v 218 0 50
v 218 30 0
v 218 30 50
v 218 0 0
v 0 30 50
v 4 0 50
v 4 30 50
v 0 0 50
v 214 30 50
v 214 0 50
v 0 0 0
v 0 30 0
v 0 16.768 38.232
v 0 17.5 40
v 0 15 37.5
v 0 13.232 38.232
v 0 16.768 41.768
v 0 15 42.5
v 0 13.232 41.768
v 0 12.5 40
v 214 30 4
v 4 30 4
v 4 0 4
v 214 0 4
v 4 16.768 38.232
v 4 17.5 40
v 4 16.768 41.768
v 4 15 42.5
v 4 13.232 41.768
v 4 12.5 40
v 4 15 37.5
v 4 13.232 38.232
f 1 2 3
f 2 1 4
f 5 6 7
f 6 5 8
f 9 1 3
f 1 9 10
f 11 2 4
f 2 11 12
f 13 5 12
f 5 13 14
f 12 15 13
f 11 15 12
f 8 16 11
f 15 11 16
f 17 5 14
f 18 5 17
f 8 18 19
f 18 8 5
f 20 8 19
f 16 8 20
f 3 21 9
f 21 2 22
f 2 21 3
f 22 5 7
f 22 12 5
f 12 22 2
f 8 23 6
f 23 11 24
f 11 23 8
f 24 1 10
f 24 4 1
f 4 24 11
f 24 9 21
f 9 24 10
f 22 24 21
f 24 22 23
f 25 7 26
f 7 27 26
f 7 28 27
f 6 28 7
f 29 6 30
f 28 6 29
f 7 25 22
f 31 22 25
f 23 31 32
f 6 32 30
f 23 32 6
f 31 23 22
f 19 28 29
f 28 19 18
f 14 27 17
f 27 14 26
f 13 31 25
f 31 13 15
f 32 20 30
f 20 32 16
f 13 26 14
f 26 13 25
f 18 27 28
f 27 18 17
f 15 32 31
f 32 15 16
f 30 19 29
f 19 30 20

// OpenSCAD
$fin=30;

thickness=4;
inside=210;
width=30;
height=50;

outside = inside + thickness*2;

difference() {
  cube([outside,width,height]);
  translate([thickness, 0, thickness]) cube([inside,width,height]);
  translate([-2,width/2,height-10]) rotate([0,90,0]) cylinder(d=5, h=50);
}
